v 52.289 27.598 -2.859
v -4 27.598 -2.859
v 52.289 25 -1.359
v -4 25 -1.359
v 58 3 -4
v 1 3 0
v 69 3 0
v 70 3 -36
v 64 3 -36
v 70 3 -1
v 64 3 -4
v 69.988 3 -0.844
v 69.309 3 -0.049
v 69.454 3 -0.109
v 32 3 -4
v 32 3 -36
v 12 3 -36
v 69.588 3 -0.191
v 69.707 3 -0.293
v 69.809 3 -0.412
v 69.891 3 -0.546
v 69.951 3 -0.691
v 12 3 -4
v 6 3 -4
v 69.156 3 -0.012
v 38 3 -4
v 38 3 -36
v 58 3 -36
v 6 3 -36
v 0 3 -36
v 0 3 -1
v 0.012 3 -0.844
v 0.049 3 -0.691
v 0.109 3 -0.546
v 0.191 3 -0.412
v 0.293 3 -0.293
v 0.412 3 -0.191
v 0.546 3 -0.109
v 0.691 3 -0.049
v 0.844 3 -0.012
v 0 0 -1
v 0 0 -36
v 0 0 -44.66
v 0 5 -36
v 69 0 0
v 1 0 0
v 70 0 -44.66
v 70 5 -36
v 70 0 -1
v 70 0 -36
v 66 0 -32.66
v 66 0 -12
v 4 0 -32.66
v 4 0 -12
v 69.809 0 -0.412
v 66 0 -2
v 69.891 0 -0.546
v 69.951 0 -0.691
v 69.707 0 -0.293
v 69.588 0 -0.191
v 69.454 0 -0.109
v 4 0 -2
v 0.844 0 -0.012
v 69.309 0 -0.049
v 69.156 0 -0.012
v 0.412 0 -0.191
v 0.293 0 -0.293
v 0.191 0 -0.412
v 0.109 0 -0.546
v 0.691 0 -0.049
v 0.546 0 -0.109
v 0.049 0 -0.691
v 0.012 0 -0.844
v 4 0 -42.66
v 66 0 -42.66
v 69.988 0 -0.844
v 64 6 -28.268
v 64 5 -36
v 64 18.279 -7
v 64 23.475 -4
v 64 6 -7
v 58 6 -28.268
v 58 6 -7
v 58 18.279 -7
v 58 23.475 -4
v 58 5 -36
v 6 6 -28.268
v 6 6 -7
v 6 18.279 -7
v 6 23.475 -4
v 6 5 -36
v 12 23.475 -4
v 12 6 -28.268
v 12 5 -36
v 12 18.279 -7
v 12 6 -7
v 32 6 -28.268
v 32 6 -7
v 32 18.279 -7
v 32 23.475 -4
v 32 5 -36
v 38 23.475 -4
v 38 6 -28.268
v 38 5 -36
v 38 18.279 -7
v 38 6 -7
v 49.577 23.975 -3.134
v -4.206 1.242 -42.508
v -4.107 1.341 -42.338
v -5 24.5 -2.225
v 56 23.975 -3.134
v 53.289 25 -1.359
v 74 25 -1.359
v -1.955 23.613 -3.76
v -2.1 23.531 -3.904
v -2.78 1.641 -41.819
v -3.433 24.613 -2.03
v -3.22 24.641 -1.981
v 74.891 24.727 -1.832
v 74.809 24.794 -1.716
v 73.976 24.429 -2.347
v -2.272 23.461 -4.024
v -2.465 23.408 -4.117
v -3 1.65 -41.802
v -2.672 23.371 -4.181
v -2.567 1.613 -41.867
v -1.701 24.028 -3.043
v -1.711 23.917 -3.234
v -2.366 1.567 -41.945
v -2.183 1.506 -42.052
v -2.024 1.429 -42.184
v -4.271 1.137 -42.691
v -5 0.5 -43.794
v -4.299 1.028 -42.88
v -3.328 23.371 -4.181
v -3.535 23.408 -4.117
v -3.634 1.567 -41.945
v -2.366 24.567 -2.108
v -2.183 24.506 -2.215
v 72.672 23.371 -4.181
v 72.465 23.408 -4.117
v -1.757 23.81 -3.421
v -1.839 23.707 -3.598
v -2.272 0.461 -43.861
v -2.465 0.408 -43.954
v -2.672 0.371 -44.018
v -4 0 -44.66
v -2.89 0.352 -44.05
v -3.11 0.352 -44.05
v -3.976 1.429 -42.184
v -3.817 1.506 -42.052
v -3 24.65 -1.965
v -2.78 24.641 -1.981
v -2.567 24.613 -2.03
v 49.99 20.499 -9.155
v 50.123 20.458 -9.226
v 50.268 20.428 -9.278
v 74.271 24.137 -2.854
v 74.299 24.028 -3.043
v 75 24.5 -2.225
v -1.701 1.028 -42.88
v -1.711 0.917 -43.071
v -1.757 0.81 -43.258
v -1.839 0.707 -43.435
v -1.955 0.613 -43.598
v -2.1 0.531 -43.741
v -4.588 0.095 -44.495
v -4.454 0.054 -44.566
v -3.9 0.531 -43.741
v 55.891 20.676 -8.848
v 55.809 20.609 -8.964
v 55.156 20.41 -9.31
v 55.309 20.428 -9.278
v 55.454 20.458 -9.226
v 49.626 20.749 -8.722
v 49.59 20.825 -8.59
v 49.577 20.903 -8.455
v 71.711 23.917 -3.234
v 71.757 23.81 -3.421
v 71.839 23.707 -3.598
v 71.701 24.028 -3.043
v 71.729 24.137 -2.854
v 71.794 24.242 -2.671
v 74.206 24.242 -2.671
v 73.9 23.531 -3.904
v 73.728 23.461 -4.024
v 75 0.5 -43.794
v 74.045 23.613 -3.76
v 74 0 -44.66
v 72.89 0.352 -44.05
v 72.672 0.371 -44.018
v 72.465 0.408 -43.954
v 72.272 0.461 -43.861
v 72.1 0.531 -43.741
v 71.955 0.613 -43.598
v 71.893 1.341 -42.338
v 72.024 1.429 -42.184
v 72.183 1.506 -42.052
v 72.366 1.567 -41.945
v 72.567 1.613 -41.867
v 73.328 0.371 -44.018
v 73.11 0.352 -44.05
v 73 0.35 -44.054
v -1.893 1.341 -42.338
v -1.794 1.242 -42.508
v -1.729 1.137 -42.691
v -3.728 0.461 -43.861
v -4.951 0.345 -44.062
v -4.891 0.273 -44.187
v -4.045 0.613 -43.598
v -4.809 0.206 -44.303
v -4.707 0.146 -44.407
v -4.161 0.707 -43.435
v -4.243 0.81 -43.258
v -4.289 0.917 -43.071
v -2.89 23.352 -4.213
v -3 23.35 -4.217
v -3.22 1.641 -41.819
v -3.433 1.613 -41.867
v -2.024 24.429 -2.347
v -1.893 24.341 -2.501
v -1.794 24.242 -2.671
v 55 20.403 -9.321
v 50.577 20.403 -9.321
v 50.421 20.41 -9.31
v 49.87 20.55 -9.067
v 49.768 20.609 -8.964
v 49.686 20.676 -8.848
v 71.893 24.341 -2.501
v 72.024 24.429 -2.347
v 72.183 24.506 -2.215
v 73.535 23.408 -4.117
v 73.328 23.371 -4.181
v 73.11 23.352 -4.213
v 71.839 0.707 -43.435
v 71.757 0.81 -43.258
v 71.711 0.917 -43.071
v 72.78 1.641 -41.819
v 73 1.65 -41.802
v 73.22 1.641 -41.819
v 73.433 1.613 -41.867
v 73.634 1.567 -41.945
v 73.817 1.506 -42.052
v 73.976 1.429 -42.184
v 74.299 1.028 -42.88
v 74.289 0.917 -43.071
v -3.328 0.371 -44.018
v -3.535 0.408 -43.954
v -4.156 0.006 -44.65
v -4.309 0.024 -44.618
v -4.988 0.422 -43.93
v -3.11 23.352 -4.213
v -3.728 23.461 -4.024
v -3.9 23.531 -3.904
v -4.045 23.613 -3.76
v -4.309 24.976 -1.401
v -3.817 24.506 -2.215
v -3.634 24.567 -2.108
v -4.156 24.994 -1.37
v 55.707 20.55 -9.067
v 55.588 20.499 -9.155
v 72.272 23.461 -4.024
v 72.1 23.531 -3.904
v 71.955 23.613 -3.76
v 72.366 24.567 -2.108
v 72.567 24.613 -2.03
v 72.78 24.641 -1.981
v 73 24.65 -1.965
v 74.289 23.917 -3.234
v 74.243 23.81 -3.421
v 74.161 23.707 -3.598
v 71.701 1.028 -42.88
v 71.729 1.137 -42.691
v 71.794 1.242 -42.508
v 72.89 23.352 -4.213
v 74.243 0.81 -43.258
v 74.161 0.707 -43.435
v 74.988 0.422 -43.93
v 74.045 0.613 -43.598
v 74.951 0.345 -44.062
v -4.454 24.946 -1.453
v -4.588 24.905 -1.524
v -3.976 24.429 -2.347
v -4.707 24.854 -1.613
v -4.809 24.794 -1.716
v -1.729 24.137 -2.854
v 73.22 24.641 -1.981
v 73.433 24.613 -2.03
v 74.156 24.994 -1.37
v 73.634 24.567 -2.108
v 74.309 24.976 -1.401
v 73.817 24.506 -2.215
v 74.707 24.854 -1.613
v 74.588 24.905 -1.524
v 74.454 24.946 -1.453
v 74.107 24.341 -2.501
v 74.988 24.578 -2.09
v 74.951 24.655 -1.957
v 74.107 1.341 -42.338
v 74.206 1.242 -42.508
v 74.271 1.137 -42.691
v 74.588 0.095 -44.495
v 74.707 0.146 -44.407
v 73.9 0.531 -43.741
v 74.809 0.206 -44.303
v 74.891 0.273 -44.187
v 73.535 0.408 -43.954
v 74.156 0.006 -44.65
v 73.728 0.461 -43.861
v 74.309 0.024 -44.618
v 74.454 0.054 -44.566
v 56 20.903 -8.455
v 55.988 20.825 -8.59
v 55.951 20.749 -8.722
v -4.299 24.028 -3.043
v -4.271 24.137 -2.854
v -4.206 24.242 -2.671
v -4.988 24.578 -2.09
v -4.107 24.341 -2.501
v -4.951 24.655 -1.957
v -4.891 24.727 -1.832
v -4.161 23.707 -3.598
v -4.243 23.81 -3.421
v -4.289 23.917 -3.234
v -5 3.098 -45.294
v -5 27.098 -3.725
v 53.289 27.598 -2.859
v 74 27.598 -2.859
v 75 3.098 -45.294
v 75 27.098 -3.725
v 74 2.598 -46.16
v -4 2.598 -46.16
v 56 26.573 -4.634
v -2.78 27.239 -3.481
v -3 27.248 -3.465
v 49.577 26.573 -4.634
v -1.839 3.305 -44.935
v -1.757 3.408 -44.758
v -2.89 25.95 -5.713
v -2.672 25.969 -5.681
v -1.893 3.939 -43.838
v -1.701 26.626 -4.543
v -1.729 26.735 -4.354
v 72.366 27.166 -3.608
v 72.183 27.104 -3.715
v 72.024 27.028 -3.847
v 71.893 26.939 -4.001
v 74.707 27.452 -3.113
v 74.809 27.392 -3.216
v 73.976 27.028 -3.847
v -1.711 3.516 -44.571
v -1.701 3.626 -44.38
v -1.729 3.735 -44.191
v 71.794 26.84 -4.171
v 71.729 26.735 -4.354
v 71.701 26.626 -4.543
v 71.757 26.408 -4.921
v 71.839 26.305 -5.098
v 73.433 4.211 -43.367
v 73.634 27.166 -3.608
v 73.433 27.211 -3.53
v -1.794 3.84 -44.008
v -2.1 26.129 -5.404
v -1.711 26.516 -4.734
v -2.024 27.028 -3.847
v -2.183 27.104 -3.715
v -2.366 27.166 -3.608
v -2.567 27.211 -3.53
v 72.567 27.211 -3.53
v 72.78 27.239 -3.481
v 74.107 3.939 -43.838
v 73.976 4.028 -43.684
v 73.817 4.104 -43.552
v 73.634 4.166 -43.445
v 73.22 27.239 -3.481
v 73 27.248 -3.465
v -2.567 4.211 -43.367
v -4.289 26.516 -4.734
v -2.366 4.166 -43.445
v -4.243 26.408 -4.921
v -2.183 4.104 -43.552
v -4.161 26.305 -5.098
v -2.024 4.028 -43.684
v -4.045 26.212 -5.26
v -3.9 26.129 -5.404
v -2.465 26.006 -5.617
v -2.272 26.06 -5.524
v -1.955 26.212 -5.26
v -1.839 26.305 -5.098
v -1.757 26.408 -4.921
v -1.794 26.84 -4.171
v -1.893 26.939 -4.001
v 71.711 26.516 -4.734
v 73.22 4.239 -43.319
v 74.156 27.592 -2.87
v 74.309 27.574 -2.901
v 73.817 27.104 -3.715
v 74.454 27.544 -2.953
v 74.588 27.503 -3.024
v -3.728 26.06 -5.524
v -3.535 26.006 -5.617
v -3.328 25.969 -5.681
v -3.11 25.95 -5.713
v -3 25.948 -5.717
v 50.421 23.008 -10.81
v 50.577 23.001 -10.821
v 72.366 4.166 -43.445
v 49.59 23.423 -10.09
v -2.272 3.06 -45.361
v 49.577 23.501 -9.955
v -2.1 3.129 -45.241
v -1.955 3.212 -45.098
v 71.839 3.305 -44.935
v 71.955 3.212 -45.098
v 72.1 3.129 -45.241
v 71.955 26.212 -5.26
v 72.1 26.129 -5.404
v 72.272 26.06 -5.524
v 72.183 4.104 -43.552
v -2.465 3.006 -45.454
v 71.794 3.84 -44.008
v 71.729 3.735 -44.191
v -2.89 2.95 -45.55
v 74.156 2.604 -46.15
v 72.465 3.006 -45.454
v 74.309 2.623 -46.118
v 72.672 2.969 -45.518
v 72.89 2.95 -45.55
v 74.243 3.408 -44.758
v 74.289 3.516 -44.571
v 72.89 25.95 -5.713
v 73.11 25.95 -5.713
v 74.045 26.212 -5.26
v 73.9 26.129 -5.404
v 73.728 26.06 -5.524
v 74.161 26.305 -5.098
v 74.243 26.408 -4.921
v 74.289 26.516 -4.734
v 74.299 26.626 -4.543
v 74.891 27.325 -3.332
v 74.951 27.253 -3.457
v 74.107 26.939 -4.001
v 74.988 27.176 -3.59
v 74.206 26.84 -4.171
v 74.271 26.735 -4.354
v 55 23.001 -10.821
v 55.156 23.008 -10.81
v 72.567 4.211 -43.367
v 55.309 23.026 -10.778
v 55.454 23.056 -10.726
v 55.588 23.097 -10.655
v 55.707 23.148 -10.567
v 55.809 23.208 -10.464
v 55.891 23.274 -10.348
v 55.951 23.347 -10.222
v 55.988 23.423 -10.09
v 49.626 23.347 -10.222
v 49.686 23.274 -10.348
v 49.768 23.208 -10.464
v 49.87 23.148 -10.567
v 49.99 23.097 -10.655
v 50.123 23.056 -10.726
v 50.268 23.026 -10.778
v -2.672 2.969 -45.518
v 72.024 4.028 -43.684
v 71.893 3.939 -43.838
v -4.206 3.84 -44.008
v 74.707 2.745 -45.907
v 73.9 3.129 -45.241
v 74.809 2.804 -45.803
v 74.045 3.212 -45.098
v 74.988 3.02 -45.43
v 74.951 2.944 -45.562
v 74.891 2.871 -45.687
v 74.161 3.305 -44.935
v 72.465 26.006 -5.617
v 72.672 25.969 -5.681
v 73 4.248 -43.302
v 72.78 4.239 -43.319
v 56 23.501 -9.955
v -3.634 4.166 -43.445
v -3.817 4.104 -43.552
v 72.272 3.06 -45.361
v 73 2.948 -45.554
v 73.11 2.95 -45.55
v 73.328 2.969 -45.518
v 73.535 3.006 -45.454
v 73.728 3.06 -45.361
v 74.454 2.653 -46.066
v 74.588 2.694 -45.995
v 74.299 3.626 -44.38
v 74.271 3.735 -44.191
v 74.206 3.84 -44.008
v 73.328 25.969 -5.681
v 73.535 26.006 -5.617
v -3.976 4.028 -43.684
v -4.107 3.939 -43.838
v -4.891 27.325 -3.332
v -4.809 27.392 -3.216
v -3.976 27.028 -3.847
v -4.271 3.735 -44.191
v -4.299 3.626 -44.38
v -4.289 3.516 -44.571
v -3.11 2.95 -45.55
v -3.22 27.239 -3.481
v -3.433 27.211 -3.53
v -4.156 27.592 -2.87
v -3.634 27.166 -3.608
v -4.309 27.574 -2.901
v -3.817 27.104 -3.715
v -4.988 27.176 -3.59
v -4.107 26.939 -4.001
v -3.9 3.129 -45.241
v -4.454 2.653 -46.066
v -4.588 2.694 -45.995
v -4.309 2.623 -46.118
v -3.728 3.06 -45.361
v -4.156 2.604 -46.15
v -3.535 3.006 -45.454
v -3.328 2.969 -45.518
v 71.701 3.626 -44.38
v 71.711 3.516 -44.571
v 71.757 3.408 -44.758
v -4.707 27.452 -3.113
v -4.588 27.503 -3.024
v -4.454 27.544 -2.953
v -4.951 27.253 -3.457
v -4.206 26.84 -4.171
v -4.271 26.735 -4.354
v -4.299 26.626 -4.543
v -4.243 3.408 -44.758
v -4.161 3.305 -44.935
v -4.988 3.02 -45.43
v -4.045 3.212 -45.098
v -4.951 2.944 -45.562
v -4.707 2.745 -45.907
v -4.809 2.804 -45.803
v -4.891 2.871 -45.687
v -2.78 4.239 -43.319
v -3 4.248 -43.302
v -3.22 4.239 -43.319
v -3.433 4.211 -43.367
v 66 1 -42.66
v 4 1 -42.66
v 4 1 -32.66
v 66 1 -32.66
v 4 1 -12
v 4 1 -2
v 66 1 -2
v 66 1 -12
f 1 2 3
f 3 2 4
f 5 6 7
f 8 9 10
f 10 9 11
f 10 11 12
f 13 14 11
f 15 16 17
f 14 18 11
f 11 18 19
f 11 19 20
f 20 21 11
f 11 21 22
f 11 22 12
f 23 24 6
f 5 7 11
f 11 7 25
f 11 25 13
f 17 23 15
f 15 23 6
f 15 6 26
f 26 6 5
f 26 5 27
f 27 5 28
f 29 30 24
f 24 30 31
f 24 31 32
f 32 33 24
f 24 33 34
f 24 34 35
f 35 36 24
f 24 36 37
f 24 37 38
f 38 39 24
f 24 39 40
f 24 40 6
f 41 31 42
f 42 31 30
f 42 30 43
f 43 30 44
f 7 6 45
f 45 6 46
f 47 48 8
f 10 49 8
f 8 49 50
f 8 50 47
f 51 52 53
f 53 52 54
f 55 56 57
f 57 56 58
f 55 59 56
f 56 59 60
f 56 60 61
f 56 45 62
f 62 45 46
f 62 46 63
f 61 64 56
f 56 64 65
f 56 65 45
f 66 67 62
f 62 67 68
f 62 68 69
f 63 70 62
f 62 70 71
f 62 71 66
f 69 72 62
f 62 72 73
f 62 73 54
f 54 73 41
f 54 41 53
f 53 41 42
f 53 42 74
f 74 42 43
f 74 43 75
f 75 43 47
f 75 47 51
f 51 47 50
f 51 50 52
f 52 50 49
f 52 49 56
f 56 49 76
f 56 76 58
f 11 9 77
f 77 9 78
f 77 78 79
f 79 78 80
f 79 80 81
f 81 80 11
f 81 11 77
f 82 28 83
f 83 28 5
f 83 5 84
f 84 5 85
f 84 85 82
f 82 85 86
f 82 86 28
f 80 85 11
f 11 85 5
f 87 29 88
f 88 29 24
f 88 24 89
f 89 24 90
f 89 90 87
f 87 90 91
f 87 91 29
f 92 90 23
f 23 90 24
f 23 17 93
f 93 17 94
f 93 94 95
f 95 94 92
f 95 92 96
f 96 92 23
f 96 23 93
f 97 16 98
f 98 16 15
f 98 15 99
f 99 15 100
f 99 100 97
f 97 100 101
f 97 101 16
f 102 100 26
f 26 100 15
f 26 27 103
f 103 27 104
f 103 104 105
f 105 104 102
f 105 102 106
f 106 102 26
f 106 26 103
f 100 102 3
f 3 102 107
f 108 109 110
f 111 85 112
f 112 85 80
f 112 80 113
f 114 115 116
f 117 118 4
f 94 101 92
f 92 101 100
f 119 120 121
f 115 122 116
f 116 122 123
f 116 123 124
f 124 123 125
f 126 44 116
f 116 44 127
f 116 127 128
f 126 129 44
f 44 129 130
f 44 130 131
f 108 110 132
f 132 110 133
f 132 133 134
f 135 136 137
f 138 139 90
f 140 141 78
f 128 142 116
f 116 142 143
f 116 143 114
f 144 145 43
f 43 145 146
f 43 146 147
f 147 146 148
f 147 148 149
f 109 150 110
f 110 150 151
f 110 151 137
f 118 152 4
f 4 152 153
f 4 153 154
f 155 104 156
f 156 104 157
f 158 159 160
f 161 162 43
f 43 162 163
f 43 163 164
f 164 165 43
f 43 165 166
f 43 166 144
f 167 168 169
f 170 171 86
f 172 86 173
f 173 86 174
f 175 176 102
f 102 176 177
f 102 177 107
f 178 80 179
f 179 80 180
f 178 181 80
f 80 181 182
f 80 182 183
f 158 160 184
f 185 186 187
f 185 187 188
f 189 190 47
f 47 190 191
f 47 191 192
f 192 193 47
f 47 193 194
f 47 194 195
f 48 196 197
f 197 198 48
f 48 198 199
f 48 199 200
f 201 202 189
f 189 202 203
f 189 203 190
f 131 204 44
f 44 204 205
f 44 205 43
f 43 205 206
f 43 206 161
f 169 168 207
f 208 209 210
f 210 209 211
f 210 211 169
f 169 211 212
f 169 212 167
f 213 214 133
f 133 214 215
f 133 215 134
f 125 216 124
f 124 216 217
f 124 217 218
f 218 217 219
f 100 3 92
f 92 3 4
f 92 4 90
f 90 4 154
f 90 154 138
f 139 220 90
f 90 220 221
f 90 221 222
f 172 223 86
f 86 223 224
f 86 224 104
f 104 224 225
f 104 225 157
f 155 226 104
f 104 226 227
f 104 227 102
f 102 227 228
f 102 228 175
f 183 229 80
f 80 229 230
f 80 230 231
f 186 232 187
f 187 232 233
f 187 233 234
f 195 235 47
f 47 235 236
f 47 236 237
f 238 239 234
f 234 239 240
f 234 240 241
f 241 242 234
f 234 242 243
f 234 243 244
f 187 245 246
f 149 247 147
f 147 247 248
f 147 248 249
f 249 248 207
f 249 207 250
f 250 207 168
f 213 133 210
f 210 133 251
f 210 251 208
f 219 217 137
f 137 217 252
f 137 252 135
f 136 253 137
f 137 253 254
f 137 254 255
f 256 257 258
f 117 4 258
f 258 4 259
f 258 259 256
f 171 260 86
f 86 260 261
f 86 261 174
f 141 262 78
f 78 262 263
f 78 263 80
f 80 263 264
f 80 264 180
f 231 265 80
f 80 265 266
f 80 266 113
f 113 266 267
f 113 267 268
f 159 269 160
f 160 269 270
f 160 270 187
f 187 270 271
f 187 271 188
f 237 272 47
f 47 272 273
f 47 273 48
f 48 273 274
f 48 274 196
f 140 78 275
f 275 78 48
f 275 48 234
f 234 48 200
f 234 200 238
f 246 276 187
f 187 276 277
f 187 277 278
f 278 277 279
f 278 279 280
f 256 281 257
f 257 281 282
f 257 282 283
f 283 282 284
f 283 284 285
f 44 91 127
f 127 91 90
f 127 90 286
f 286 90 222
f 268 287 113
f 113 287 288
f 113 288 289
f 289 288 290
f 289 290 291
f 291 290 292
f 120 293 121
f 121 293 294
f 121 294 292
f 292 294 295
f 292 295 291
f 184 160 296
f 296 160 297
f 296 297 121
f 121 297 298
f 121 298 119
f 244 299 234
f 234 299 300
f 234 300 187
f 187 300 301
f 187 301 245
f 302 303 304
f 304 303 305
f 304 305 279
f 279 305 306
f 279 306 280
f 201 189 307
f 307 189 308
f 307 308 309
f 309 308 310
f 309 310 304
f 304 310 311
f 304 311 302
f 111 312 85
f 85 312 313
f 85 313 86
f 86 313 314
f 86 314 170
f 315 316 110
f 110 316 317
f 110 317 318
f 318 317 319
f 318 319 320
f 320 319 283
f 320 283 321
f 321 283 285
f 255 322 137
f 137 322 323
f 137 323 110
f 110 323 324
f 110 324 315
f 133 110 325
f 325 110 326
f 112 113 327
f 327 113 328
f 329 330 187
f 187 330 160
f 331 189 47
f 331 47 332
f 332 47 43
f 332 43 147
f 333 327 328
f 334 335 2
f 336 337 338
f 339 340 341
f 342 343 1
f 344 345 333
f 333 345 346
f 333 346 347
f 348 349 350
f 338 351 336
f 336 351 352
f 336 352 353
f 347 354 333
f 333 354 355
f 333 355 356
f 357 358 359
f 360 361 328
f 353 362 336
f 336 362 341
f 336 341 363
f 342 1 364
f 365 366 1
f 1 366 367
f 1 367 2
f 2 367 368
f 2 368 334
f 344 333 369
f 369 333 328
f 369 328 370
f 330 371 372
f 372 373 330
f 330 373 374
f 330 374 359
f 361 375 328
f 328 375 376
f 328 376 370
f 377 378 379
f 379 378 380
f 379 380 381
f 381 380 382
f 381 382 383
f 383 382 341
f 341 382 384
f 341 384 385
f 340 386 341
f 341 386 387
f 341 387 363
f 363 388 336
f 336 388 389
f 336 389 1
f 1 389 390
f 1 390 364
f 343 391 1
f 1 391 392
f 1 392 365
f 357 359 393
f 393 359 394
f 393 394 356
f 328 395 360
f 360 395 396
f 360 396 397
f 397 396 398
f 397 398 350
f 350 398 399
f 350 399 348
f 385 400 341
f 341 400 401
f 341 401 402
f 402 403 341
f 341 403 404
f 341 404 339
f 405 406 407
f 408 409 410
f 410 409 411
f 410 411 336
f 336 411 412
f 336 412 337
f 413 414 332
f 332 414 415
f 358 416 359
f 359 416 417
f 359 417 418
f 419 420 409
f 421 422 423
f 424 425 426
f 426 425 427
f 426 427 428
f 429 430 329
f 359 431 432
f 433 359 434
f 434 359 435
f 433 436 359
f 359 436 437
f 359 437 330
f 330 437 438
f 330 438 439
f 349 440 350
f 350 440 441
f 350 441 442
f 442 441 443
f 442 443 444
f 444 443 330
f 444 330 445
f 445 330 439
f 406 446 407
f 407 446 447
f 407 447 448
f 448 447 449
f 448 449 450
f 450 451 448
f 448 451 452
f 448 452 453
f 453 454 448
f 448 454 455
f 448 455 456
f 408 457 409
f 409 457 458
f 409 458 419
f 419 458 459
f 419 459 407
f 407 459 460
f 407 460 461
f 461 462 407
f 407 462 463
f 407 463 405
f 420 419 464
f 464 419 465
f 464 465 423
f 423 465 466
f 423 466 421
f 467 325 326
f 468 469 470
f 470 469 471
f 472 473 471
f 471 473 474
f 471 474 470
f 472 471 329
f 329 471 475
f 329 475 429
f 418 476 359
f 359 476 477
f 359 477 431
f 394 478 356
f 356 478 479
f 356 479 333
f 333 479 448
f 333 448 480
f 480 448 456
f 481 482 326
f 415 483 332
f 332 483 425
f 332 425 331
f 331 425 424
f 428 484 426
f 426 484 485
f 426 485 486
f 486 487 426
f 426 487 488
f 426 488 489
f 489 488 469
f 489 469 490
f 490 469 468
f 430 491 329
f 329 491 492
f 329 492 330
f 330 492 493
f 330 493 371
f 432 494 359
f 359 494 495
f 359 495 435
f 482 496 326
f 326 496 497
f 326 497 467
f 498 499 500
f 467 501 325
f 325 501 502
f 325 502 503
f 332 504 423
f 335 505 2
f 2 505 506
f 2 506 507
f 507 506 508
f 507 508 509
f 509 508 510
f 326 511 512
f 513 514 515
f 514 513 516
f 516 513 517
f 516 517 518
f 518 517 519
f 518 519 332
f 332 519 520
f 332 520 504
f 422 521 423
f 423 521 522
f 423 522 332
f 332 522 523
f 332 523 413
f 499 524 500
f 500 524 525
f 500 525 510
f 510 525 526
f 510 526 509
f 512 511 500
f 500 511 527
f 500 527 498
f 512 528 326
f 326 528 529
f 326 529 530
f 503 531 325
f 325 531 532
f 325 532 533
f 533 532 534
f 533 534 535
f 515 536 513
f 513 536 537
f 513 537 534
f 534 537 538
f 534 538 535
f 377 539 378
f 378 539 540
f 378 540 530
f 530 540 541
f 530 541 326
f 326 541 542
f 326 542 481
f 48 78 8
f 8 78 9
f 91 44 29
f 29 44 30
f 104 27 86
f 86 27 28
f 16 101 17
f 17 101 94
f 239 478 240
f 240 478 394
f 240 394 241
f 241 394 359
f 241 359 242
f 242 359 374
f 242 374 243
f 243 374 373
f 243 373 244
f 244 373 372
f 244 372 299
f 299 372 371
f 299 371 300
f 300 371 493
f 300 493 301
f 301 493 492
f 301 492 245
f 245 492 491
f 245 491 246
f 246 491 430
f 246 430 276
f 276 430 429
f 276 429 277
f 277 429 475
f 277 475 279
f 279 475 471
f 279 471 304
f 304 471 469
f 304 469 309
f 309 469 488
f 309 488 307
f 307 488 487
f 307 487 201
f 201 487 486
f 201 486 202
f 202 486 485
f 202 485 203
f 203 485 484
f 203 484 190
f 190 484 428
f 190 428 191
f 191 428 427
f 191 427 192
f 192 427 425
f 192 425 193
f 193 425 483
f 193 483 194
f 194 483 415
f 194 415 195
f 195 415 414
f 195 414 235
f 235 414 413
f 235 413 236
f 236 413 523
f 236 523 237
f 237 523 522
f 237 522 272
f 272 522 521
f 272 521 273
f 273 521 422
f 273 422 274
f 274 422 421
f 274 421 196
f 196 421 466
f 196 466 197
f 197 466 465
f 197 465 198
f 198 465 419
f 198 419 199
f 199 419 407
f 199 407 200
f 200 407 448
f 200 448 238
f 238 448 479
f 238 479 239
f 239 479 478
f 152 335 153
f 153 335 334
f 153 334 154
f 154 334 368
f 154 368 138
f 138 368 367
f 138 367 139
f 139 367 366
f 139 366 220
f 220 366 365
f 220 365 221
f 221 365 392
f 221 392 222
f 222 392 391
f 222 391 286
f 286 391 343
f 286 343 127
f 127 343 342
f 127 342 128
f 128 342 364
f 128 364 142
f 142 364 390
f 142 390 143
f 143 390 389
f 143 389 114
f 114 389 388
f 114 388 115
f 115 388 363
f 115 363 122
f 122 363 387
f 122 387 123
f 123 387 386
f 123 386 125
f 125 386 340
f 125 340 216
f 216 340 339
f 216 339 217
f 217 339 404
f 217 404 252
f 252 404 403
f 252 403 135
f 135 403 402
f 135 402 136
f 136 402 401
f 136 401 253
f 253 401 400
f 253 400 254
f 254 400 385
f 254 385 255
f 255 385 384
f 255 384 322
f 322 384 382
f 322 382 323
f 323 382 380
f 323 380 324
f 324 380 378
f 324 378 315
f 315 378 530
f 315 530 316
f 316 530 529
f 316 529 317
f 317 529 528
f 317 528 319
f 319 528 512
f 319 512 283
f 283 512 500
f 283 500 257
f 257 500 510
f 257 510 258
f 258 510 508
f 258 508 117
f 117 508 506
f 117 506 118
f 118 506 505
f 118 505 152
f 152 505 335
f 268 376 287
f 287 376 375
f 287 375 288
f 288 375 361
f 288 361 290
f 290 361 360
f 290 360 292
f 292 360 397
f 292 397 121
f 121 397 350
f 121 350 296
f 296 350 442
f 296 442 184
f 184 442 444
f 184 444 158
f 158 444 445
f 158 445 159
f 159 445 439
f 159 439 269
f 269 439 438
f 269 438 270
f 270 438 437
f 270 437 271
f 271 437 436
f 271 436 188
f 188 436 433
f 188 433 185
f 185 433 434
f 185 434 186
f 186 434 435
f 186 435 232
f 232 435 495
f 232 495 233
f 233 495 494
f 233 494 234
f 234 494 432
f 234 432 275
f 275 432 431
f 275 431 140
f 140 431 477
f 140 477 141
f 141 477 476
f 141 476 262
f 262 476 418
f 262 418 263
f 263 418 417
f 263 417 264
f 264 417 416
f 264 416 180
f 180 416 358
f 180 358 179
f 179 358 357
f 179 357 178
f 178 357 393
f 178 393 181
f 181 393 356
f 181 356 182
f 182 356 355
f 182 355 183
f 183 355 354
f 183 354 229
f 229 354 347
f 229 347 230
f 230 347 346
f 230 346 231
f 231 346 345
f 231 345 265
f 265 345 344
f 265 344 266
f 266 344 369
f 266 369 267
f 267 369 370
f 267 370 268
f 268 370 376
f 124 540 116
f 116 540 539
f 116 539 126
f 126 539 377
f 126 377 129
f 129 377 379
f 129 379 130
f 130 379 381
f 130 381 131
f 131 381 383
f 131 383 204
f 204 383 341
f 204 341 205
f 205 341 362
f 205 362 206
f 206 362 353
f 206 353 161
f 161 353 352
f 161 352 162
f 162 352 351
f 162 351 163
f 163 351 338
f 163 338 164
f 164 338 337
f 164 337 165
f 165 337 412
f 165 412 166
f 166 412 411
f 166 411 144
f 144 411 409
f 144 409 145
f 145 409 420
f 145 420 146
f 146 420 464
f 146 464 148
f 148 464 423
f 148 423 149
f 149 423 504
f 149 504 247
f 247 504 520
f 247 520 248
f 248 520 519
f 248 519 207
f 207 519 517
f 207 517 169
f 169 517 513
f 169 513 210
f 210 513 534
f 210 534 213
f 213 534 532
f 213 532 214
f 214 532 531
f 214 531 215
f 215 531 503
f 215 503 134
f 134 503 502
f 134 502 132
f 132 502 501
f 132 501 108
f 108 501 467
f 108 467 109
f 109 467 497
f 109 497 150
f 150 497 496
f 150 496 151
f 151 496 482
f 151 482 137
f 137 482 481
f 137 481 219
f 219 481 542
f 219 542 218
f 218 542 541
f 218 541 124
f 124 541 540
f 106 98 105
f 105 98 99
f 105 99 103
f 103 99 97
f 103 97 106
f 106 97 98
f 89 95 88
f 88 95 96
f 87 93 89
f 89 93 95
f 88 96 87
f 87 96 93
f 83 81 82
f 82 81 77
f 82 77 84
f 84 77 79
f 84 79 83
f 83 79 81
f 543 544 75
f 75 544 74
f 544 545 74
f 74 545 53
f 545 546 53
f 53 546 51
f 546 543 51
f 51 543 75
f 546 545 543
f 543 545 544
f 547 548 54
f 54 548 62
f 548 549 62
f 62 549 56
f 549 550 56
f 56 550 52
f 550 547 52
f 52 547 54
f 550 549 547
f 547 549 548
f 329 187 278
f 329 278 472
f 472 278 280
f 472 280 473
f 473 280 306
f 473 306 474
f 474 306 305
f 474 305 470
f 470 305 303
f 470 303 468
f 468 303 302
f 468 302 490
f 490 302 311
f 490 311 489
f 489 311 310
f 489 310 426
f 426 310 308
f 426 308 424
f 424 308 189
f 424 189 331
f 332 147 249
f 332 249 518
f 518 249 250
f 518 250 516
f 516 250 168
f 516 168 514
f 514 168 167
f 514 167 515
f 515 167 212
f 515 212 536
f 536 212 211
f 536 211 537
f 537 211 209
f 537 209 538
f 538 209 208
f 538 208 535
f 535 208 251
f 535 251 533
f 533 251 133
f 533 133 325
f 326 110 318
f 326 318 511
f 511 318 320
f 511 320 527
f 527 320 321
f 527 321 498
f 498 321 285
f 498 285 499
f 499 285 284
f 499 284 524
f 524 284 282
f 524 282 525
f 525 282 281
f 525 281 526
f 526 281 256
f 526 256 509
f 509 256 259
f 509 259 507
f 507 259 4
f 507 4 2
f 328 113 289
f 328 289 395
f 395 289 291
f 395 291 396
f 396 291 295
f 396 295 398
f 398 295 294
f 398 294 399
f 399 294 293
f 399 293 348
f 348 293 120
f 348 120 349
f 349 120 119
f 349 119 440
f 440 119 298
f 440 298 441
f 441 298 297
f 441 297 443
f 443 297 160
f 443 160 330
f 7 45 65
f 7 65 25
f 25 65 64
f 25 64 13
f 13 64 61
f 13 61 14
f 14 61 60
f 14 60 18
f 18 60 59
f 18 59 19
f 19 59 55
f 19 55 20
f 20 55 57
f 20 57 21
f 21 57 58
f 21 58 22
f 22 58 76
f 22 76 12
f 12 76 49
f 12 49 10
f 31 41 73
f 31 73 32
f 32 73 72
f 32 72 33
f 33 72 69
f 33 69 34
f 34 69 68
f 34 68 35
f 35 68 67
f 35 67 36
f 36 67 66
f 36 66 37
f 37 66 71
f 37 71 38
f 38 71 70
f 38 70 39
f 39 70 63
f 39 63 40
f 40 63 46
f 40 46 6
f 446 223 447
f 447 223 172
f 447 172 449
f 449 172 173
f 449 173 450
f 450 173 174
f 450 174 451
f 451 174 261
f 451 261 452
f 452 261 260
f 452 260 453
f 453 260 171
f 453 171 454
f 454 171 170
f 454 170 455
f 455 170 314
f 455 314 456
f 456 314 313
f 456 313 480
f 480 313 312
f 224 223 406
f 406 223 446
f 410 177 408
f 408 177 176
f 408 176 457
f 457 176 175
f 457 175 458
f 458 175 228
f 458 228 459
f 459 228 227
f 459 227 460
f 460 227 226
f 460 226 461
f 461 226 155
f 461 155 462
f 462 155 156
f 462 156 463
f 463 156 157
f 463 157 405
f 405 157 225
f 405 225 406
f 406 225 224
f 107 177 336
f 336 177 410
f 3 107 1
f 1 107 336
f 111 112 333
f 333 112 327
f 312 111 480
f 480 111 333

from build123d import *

# Parameters (mm, degrees)
SKETCH8_W           = 70
SKETCH8_H           = 36
BOSS_EXTRUDE3_DEPTH = 3
SKETCH9_W           = 6
SKETCH9_H           = 32
BOSS_EXTRUDE4_DEPTH = 20.47521
CUT_EXTRUDE1_DEPTH  = 100
BOSS_EXTRUDE5_DEPTH = 3
BOSS_EXTRUDE6_DEPTH = 70
SKETCH15_R          = 1.3
CUT_EXTRUDE2_DEPTH  = 3
CUT_EXTRUDE3_DEPTH  = 100
SKETCH17_W          = 62
SKETCH17_H          = 10
CUT_EXTRUDE4_DEPTH  = 1
FILLET1_R           = 1
CUT_EXTRUDE5_DEPTH  = 10


with BuildPart() as part:
    # Sketch8 → Boss-Extrude3 (new body)
    with BuildSketch(Plane(origin=(0, 0, 0), x_dir=(1, 0, 0), z_dir=(0, 1, 0))):
        with Locations((35, 18)):
            Rectangle(SKETCH8_W, SKETCH8_H)
    extrude(amount=BOSS_EXTRUDE3_DEPTH)

    # Sketch9 → Boss-Extrude4 (add)
    with BuildSketch(Plane(origin=(0, 3, 0), x_dir=(1, 0, 0), z_dir=(0, 1, 0))):
        with Locations((61, 20)):
            Rectangle(SKETCH9_W, SKETCH9_H)
        with Locations((9, 20)):
            Rectangle(SKETCH9_W, SKETCH9_H)
        with Locations((35, 20)):
            Rectangle(SKETCH9_W, SKETCH9_H)
    extrude(amount=BOSS_EXTRUDE4_DEPTH)

    # Sketch10 → Cut-Extrude1 (cut)
    with BuildSketch(Plane.ZY.offset(-6)):
        Polygon((-36, 5), (-4, 23.47521), (-36, 23.47521), align=None)
    extrude(amount=-CUT_EXTRUDE1_DEPTH, mode=Mode.SUBTRACT)

    # Sketch11 → Boss-Extrude5 (add)
    with BuildSketch(Plane(origin=(0, 19.338457712, -11.165064603), x_dir=(1, 0, 0), z_dir=(0, 0.8660253875430481, -0.5000000281309126))):
        Polygon((6, 38.676913811), (-5, 38.676913811), (-5, -11.323086189), (75, -11.323086189), (75, 38.676913811), (64, 38.676913811), align=None)
    extrude(amount=BOSS_EXTRUDE5_DEPTH)

    # Sketch14 → Boss-Extrude6 (add)
    with BuildSketch(Plane.ZY):
        Polygon((-36, 0), (-44.660253875, -2.81e-07), (-36, 5), align=None)
    extrude(amount=-BOSS_EXTRUDE6_DEPTH)

    # Sketch15 → Cut-Extrude2 (cut)
    with BuildSketch(Plane(origin=(0, 21.936533875, -12.665064688), x_dir=(1, 0, 0), z_dir=(0, 0.8660253875430481, -0.5000000281309125))):
        with Locations(Location((-3, 36.676913811, 0), (0, 0, 270))):
            Circle(SKETCH15_R)
        with Locations(Location((73, 36.676913811, 0), (0, 0, 90))):
            Circle(SKETCH15_R)
        with Locations(Location((73, -9.323086189, 0), (0, 0, 270))):
            Circle(SKETCH15_R)
        with Locations(Location((-3, -9.323086189, 0), (0, 0, 90))):
            Circle(SKETCH15_R)
    extrude(amount=-CUT_EXTRUDE2_DEPTH, mode=Mode.SUBTRACT)

    # Sketch16 → Cut-Extrude3 (cut)
    with BuildSketch(Plane.ZY.offset(-6)):
        Polygon((-7, 6), (-7, 18.279057382), (-28.26794966, 6), align=None)
    extrude(amount=-CUT_EXTRUDE3_DEPTH, mode=Mode.SUBTRACT)

    # Sketch17 → Cut-Extrude4 (cut)
    with BuildSketch(Plane.XZ):
        with Locations((35, -7)):
            Rectangle(SKETCH17_W, SKETCH17_H)
        with Locations((35, -37.660253875)):
            Rectangle(SKETCH17_W, SKETCH17_H)
    extrude(amount=-CUT_EXTRUDE4_DEPTH, mode=Mode.SUBTRACT)

    # Fillet1
    fillet1_edges = [part.edges().sort_by_distance(p)[0] for p in [
        (70, 1.5, 0),
        (0, 1.5, 0),
        (-5, 1.2990378, -45.410253918),
        (-5, 26.299039207, -2.10898454),
        (75, 26.299039207, -2.10898454),
        (75, 1.2990378, -45.410253918),
    ]]
    fillet(fillet1_edges, radius=FILLET1_R)

    # Sketch18 → Cut-Extrude5 (cut)
    with BuildSketch(Plane(origin=(0, 19.338457712, -11.165064603), x_dir=(1, 0, 0), z_dir=(0, -0.8660253875430481, 0.5000000281309125))):
        with BuildLine():
            Line((49.57742676, 6.27350411), (49.57742676, 9.27350411))
            Line((49.57742676, 9.27350411), (52.28871338, 11.323086189))
            Line((52.28871338, 11.323086189), (53.28871338, 11.323086189))
            Line((53.28871338, 11.323086189), (56, 9.27350411))
            Line((56, 9.27350411), (56, 6.27350411))
            Line((56, 6.27350411), (56, 3.12980455))
            ThreePointArc((56, 3.12980455), (55.707106781, 2.422697769), (55, 2.12980455))
            Line((55, 2.12980455), (50.57742676, 2.12980455))
            ThreePointArc((50.57742676, 2.12980455), (49.870319979, 2.422697769), (49.57742676, 3.12980455))
            Line((49.57742676, 3.12980455), (49.57742676, 6.27350411))
        make_face()
    extrude(amount=-CUT_EXTRUDE5_DEPTH, mode=Mode.SUBTRACT)


solid = part.part
